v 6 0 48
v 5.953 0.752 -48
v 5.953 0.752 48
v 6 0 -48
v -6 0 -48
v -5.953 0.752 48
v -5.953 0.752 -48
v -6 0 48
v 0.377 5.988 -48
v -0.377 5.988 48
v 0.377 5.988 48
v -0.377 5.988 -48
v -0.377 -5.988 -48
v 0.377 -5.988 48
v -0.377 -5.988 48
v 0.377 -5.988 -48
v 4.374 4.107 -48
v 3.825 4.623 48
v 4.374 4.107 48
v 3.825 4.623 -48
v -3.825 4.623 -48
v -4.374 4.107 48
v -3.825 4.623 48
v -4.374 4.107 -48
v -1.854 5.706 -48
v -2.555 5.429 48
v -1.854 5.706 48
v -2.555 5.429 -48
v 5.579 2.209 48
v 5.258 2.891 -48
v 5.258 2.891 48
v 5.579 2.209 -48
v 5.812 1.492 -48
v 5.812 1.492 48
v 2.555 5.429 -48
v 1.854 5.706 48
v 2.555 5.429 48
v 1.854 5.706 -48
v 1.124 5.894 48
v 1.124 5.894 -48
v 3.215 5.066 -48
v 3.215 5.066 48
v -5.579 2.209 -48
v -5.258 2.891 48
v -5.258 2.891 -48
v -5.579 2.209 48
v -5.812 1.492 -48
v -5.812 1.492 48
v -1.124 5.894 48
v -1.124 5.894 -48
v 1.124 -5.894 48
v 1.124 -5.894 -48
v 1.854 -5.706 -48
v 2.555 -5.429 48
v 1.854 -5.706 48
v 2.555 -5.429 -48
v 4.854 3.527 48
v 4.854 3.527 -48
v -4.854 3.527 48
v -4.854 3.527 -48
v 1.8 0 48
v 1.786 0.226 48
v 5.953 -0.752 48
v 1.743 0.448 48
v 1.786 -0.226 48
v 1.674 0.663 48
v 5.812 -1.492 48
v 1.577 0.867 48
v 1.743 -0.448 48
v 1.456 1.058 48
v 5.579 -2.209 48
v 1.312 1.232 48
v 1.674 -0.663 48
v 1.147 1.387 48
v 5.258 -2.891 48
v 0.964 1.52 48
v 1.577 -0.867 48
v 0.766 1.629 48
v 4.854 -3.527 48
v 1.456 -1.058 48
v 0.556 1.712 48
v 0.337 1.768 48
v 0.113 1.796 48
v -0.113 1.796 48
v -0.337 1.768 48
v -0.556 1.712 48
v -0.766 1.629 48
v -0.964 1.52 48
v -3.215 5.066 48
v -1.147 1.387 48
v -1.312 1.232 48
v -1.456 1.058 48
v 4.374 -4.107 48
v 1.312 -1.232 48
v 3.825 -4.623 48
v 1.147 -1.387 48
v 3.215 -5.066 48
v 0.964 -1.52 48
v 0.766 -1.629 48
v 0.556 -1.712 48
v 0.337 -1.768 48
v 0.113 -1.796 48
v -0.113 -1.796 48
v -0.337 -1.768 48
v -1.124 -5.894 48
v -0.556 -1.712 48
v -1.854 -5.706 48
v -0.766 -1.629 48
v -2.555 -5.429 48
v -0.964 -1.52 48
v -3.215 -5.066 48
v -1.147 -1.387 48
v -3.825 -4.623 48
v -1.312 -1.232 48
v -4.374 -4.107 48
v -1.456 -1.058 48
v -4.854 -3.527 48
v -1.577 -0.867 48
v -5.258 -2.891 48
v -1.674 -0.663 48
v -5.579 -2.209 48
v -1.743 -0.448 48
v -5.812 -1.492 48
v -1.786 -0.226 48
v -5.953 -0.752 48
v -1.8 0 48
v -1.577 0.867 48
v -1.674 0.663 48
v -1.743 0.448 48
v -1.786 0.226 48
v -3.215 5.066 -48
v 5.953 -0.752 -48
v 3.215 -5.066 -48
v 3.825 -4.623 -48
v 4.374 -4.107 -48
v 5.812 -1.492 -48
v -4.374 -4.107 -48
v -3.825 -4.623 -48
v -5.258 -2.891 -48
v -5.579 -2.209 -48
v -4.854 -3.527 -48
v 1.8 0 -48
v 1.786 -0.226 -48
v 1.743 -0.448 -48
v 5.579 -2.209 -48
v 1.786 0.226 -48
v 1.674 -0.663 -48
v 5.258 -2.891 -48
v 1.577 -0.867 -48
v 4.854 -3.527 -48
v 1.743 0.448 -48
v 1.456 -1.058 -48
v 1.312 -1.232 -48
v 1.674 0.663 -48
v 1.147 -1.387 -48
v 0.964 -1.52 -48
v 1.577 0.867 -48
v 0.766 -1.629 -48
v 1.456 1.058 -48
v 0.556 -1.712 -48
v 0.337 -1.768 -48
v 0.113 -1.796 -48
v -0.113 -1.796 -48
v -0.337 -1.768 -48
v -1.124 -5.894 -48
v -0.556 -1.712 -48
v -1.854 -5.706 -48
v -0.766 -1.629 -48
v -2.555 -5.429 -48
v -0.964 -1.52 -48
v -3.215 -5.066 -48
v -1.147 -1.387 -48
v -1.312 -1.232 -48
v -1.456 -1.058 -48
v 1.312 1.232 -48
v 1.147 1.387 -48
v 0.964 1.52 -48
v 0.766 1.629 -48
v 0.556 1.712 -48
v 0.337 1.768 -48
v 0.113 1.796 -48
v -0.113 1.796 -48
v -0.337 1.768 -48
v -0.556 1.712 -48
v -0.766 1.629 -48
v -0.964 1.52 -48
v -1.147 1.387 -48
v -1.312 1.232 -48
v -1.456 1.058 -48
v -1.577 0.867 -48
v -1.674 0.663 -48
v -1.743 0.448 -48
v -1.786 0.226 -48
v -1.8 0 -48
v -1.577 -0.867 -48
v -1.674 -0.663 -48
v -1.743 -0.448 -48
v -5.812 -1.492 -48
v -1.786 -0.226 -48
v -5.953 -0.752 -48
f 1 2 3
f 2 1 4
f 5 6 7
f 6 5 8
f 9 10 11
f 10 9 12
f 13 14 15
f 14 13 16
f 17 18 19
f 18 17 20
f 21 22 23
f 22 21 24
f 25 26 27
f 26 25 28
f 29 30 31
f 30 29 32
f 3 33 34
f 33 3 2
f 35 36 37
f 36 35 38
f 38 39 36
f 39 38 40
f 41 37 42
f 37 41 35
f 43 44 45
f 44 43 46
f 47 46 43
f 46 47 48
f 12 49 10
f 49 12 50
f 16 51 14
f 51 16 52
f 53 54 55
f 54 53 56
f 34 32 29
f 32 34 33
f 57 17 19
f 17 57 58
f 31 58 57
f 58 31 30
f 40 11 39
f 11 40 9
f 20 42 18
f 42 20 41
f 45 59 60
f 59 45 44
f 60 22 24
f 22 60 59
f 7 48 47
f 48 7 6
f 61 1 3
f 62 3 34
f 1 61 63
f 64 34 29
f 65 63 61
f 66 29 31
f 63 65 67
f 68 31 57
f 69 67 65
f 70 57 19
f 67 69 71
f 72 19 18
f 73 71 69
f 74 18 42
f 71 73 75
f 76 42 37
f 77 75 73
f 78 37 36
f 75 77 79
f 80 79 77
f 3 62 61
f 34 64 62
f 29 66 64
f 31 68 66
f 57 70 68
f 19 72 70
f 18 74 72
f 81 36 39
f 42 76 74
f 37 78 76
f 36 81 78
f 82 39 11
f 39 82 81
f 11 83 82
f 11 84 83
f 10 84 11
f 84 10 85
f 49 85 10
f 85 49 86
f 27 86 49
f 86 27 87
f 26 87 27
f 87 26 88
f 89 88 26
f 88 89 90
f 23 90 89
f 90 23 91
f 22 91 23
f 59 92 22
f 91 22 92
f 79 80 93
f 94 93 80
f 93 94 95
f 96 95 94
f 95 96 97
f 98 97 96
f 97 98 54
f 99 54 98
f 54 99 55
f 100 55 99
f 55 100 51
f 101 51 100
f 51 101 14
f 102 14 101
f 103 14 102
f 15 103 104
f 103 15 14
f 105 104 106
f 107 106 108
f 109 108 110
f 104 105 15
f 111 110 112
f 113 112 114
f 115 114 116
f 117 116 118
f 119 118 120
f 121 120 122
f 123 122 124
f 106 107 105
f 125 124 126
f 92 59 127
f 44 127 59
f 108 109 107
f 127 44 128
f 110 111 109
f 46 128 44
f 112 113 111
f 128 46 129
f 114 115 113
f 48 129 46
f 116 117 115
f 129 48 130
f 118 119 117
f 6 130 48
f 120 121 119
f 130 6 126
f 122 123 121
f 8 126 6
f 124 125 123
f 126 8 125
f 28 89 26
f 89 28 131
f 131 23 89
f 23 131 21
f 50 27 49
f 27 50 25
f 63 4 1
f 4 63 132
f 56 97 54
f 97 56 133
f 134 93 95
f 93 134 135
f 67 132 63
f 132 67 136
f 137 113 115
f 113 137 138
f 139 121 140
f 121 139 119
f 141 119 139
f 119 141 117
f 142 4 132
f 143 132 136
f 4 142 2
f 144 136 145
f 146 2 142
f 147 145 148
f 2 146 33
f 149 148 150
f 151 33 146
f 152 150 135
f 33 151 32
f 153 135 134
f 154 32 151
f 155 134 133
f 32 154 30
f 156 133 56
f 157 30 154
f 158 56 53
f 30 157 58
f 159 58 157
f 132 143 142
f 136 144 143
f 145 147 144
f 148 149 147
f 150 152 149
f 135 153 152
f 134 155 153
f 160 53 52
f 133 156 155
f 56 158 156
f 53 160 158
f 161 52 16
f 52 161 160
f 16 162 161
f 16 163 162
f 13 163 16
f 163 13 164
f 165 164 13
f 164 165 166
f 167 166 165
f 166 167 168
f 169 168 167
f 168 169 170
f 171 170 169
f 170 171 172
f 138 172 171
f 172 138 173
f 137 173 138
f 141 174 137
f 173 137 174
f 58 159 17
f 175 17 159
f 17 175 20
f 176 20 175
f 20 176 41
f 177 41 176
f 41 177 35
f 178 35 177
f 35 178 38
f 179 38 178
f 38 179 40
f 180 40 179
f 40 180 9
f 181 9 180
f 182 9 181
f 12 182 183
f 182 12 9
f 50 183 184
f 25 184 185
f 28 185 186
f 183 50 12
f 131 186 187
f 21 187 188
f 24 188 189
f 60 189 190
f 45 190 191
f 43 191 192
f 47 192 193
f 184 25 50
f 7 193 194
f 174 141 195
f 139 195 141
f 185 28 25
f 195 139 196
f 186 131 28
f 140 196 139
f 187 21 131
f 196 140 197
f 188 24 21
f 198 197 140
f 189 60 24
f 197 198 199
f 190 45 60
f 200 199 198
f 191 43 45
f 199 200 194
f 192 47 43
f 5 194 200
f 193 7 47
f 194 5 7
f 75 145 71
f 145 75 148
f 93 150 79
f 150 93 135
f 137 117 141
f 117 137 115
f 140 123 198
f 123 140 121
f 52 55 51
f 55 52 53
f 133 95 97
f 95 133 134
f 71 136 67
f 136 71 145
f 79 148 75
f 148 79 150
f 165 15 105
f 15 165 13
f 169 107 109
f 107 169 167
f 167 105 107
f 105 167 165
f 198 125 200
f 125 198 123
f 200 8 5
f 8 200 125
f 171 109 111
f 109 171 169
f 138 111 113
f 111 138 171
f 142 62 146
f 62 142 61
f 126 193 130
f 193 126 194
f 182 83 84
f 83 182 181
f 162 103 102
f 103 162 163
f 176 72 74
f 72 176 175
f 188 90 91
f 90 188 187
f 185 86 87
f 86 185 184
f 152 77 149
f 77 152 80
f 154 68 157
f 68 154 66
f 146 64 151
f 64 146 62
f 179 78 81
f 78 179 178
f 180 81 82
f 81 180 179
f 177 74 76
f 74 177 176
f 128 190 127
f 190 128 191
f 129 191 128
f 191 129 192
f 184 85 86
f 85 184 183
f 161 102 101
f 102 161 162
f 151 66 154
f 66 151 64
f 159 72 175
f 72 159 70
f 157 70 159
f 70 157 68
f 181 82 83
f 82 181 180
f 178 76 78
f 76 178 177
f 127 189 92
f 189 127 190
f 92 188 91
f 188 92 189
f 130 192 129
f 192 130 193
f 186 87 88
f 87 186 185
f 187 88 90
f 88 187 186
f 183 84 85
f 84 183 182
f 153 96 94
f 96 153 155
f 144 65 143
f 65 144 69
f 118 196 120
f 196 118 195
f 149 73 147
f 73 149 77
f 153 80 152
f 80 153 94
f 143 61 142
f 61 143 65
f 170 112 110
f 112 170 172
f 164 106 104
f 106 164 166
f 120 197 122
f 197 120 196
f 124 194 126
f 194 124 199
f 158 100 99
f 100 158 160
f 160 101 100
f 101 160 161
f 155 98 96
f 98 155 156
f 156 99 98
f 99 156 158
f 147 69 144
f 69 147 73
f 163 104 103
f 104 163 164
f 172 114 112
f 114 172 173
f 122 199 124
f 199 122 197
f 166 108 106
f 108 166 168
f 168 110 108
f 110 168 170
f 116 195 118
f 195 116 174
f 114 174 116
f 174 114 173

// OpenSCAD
$fn = 50;


difference() {
	union() {
		translate(v = [0, 0, -48.0000000000]) {
			cylinder(h = 96, r = 6.0000000000);
		}
	}
	union() {
		translate(v = [0, 0, -100.0000000000]) {
			cylinder(h = 200, r = 1.8000000000);
		}
	}
}
